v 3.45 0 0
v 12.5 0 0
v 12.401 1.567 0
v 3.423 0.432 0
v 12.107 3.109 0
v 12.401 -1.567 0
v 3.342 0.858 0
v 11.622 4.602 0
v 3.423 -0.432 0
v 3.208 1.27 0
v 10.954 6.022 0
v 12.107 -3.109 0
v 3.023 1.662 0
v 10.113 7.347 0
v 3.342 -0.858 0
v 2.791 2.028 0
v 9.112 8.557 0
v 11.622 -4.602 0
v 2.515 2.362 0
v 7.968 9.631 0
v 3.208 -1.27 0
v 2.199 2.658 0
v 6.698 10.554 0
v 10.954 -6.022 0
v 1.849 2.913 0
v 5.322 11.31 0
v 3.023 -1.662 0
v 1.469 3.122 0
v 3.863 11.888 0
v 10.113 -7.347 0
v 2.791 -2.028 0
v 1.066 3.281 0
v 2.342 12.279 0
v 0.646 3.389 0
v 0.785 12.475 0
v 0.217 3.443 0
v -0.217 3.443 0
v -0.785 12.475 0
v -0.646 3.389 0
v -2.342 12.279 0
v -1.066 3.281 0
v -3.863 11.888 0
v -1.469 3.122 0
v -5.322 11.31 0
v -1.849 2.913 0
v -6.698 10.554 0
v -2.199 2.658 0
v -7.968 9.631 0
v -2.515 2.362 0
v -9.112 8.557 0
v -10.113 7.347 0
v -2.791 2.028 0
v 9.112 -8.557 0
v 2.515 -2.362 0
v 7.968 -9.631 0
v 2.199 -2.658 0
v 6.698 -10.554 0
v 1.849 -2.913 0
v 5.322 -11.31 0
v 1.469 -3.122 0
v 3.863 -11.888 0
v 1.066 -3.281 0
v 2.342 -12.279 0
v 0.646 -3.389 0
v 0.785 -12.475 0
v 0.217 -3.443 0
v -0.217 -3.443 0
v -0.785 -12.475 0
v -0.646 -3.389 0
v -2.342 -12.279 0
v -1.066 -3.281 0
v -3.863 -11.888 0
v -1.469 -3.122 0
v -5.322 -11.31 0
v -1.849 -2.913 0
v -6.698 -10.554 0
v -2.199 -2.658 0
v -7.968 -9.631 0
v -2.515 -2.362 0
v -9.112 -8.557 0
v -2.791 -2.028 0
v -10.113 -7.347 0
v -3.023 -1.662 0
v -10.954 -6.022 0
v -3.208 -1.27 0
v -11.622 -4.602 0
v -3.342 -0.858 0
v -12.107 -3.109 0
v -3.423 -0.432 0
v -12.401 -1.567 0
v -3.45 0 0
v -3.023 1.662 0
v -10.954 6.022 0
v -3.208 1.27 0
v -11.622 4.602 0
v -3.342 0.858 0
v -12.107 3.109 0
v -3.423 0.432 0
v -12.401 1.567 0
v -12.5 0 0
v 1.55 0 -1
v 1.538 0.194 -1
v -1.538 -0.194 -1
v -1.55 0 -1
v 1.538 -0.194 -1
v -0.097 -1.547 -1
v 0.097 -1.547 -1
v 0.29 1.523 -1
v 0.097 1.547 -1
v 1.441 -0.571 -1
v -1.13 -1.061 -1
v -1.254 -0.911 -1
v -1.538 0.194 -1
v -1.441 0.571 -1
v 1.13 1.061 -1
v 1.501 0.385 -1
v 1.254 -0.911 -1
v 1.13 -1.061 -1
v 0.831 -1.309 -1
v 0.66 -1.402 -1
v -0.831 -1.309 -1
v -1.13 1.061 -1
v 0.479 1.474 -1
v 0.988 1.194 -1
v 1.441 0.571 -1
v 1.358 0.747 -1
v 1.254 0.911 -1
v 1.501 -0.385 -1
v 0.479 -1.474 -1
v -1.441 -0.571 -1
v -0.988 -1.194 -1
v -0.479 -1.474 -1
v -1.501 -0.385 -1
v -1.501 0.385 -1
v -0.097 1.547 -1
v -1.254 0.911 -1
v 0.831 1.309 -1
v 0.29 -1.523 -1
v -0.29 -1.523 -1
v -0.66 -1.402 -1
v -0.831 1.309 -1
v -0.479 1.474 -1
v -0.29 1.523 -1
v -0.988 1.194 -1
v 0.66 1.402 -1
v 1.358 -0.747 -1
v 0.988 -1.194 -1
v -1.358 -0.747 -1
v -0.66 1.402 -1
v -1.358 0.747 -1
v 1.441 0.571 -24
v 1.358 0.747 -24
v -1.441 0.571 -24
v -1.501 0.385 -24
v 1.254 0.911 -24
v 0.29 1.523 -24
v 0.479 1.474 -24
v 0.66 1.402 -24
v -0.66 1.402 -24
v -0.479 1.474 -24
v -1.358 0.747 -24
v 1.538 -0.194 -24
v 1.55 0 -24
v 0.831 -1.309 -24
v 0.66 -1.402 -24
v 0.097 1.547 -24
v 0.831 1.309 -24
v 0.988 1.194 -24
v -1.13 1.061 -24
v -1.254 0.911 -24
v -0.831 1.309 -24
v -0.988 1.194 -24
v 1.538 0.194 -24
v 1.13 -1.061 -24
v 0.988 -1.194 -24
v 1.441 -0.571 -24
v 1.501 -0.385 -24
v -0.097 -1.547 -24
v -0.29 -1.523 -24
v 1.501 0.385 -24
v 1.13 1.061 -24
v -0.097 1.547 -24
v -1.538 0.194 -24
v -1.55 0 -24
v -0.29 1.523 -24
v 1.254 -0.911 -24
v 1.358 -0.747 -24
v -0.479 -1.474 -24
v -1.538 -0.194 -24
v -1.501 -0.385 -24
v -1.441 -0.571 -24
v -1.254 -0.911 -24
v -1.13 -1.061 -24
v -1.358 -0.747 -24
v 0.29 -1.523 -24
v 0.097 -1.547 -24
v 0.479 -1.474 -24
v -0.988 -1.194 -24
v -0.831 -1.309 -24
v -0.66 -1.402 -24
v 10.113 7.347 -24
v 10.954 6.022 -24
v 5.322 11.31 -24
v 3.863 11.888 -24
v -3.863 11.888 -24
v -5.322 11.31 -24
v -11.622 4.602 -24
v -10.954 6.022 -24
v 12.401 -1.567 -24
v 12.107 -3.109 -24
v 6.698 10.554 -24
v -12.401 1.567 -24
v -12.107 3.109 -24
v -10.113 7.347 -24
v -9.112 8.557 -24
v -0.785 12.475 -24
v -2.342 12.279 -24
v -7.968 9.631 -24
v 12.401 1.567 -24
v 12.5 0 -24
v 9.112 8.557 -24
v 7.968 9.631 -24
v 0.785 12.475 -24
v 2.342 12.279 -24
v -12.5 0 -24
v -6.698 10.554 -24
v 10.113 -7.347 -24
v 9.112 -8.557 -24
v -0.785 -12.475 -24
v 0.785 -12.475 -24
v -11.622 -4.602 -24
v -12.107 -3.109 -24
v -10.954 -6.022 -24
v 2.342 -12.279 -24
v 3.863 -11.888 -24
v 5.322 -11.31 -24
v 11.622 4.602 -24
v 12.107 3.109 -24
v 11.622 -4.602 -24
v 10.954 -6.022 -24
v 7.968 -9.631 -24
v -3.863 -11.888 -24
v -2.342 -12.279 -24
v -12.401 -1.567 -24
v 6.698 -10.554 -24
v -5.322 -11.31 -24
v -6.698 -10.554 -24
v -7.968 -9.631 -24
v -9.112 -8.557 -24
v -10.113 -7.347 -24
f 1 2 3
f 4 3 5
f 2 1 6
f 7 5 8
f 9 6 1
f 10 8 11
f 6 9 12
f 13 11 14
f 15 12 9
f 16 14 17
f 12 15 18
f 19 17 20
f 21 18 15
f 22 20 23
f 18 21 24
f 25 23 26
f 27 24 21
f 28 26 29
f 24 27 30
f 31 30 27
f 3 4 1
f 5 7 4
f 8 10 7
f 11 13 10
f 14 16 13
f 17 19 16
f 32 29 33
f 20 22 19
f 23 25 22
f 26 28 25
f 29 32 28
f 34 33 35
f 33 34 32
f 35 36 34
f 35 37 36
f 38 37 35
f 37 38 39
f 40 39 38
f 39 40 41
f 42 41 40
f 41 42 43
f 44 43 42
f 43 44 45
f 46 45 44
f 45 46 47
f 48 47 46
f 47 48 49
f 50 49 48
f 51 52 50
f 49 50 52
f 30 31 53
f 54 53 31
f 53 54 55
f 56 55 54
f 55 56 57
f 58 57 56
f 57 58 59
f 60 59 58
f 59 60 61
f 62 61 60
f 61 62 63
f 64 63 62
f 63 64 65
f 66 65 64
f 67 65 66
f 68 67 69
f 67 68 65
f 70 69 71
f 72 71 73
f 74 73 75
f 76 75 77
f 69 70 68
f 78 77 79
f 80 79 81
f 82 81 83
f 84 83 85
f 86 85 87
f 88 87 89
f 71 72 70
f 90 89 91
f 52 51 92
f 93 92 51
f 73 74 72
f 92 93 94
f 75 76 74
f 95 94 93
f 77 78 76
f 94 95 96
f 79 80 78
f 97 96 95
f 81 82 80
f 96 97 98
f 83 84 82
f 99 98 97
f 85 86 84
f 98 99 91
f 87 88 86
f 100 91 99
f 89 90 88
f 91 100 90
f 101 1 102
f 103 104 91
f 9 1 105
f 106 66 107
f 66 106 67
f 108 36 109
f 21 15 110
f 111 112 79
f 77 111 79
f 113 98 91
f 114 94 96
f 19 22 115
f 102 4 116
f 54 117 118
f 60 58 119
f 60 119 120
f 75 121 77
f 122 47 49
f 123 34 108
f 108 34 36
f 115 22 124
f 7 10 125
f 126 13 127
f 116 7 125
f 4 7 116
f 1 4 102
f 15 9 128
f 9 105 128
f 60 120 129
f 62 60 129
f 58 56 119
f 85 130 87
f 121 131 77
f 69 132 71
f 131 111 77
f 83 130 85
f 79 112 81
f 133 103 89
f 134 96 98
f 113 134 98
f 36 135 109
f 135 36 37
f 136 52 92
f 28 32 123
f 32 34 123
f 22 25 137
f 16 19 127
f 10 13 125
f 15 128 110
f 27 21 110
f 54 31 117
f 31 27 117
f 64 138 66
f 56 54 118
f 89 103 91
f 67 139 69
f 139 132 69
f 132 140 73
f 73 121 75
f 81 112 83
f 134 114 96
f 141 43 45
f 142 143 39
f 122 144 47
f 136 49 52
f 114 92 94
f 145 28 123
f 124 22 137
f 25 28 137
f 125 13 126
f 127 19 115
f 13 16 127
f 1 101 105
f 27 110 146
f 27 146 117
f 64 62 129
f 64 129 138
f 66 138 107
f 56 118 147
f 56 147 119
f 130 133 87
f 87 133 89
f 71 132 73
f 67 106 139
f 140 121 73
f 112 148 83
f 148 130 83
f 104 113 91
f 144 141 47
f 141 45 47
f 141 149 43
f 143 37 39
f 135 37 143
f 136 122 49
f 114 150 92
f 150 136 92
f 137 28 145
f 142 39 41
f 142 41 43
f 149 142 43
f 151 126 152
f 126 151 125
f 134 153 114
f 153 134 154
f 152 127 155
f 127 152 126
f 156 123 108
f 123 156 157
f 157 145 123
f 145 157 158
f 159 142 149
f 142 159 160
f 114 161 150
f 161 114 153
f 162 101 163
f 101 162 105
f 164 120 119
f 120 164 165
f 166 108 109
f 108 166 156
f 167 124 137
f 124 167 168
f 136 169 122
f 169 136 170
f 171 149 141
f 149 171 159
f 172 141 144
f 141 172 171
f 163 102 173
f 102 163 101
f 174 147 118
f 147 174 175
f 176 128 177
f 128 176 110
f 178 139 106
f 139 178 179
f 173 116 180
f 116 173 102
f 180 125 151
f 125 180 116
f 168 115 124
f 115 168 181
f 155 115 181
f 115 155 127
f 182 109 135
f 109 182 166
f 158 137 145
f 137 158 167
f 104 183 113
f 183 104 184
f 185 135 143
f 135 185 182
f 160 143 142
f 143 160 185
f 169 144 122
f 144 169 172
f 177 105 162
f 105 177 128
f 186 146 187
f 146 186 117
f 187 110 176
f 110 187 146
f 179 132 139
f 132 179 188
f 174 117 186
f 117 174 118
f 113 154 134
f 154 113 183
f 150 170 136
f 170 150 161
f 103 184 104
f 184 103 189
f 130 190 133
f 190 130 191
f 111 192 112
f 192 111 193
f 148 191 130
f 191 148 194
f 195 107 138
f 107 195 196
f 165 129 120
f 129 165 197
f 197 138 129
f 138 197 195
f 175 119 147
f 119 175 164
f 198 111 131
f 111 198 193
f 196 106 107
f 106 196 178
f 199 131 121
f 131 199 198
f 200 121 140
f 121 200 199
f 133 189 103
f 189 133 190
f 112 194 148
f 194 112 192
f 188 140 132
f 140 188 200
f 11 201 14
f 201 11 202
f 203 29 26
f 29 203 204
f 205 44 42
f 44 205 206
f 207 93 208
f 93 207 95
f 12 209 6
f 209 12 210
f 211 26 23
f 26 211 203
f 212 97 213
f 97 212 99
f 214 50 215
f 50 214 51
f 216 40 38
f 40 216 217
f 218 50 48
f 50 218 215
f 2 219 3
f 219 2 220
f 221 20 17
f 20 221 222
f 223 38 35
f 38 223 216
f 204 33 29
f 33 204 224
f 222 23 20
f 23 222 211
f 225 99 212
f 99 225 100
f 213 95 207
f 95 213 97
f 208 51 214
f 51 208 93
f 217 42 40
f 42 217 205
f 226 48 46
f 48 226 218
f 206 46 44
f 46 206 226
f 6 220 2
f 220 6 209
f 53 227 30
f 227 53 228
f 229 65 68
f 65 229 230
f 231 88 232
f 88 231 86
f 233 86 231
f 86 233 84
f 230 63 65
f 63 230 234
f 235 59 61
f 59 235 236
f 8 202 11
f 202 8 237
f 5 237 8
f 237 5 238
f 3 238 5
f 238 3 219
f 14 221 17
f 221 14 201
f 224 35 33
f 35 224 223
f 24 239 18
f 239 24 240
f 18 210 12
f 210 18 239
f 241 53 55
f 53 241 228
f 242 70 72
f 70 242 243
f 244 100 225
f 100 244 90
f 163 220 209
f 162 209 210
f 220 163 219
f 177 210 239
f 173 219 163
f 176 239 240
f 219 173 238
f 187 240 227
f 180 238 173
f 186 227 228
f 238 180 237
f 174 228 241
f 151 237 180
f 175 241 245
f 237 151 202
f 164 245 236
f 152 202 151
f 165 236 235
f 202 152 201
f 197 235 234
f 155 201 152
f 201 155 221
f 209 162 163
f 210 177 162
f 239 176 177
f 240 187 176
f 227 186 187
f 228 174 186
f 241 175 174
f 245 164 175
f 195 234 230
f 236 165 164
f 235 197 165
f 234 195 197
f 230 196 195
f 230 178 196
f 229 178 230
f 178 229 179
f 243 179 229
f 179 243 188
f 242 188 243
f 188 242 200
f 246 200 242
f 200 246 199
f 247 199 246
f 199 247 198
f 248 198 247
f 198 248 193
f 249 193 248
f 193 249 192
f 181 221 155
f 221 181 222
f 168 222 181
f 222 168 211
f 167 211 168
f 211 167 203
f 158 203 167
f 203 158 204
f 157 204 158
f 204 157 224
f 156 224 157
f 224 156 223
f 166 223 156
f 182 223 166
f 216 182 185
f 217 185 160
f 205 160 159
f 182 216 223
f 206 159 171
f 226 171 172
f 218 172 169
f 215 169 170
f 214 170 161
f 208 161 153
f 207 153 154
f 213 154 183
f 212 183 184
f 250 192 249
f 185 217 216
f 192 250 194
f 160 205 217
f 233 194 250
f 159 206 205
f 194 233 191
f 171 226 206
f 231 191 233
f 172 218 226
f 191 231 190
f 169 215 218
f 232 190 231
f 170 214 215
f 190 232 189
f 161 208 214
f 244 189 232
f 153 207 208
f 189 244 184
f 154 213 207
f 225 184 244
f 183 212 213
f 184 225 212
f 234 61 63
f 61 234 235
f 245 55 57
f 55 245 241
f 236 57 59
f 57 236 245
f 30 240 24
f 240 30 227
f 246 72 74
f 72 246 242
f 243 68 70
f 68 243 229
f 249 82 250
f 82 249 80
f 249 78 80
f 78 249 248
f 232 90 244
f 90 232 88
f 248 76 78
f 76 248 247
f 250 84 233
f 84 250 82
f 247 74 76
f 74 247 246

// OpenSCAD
$fn = 50;

difference() {
	union() {
		translate(v = [0, 0, -24.0]) {
			cylinder(h = 24, r = 12.5);
		}
	}
	union() {
		translate(v = [0, 0, 0]) {
			rotate(a = [0, 0, 0]) {
				difference() {
					union() {
						translate(v = [0, 0, -27.0]) {
							cylinder(h = 27, r = 1.25);
						}
						translate(v = [0, 0, -1.0]) {
							cylinder(h = 1.0, r1 = 1.55, r2 = 3.45);
						}
						translate(v = [0, 0, -27.0]) {
							cylinder(h = 27, r = 1.55);
						}
						translate(v = [0, 0, -27.0]) {
							cylinder(h = 27, r = 1.25);
						}
					}
					union();
				}
			}
		}
	}
}
